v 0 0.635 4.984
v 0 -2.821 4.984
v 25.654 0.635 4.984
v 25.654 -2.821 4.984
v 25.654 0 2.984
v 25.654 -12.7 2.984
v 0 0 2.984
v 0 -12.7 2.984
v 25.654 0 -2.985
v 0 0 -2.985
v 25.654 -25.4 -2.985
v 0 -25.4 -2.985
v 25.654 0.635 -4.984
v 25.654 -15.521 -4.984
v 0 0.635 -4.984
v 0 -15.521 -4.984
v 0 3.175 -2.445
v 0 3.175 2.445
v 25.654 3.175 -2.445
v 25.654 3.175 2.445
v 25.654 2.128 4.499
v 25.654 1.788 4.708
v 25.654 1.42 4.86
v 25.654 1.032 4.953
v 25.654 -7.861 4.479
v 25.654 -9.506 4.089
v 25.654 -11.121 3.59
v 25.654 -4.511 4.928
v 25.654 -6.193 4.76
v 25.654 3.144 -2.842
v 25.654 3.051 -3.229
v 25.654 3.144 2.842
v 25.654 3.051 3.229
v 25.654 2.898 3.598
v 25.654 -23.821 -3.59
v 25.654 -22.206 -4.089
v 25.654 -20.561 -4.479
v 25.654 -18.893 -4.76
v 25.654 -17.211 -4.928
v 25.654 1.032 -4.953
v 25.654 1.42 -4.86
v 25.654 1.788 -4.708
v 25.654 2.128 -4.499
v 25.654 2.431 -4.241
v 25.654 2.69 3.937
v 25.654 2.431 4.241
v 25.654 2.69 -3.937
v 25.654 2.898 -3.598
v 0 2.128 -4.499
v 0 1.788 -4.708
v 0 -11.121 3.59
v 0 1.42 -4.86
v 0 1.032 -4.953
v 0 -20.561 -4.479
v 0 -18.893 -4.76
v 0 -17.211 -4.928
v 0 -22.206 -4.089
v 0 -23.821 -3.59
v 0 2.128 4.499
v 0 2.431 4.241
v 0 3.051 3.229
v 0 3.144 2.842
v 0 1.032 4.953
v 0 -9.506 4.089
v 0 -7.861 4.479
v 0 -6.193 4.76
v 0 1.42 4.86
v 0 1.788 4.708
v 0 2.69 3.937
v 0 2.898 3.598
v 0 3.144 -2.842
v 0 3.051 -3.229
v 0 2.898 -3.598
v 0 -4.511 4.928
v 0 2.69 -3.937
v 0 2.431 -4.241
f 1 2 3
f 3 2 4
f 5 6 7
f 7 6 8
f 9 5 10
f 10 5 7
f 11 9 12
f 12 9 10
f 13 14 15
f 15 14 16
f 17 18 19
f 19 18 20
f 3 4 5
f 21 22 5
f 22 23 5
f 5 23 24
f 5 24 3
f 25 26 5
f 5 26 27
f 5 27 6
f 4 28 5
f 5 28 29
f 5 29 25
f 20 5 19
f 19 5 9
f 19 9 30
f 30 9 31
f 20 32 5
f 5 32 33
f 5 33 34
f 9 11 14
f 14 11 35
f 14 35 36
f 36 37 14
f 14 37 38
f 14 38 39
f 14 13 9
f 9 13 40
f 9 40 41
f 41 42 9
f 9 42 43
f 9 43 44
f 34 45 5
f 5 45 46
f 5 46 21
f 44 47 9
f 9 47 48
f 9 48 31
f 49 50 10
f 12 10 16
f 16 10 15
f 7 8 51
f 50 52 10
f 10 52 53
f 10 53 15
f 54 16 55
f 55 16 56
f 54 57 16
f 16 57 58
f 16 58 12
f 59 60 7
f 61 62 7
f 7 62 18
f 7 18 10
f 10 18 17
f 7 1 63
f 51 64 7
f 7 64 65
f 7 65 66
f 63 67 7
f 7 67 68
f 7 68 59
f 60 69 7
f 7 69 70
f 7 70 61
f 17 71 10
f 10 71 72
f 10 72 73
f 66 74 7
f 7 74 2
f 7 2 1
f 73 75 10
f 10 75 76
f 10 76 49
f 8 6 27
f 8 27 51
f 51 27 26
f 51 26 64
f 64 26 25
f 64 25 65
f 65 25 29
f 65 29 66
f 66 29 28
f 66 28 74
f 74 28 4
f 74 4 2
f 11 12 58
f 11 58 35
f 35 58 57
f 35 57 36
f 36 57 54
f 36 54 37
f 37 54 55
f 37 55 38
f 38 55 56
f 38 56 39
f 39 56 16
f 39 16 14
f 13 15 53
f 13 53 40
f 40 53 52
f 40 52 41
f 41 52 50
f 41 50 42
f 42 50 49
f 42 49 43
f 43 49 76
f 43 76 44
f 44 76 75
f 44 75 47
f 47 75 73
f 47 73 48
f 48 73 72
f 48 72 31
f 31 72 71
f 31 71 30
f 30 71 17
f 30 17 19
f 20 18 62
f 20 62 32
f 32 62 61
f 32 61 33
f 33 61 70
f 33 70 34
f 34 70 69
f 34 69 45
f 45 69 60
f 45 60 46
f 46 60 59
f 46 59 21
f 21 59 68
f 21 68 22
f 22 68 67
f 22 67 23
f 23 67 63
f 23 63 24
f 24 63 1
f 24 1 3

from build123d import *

# Parameters (mm, degrees)
BOSS_EXTRUDE1_DEPTH = 25.654
FILLET1_R           = 25.4
FILLET2_R           = 2.54


with BuildPart() as part:
    # Sketch1 → Boss-Extrude1 (new body)
    with BuildSketch(Plane(origin=(0, 0, 0), x_dir=(0, 0, -1), z_dir=(1, 0, 0))):
        Polygon((-4.9845, -12.7), (-2.9845, -12.7), (-2.9845, 0), (2.9845, 0), (2.9845, -25.4), (4.9845, -25.4), (4.9845, 3.175), (-4.9845, 3.175), align=None)
    extrude(amount=BOSS_EXTRUDE1_DEPTH)

    # Fillet1
    # the kernel refuses this fillet: 25.4 mm, written as the material it takes off along each edge
    with BuildSketch(Plane(origin=(-24.69817807, -12.7, 4.9845), x_dir=(0, 0, -1), z_dir=(1, 0, 0))) as fillet1_piece_1:
        with BuildLine():
            CenterArc((25.4, 9.879271228), FILLET1_R, 180, 22.889037196)
            Line((0, 9.879271228), (-0.508, 9.879271228))
            Line((-0.508, 9.879271228), (-0.508, 0))
            Line((-0.508, 0), (0, -0.508))
            ThreePointArc((0, -0.508), (1, -0.508), (1.532, -0.197585425))
            Line((1.532, -0.197585425), (2, 0))
        make_face()
    extrude(amount=75.050356141, mode=Mode.SUBTRACT)
    with BuildSketch(Plane(origin=(-24.69817807, -25.4, -4.9845), x_dir=(0, 0, 1), z_dir=(1, 0, 0))) as fillet1_piece_2:
        with BuildLine():
            CenterArc((25.4, -9.879271228), FILLET1_R, 157.110962804, 22.889037196)
            Line((0, -9.879271228), (-0.508, -9.879271228))
            Line((-0.508, -9.879271228), (-0.508, 0))
            Line((-0.508, 0), (0, 0.508))
            ThreePointArc((0, 0.508), (1, 0.508), (1.532, 0.197585425))
            Line((1.532, 0.197585425), (2, 0))
        make_face()
    extrude(amount=75.050356141, mode=Mode.SUBTRACT)

    # Fillet2
    fillet2_edges = [part.edges().sort_by_distance(p)[0] for p in [
        (12.827, 3.175, 4.9845),
        (12.827, 3.175, -4.9845),
    ]]
    fillet(fillet2_edges, radius=FILLET2_R)


solid = part.part
